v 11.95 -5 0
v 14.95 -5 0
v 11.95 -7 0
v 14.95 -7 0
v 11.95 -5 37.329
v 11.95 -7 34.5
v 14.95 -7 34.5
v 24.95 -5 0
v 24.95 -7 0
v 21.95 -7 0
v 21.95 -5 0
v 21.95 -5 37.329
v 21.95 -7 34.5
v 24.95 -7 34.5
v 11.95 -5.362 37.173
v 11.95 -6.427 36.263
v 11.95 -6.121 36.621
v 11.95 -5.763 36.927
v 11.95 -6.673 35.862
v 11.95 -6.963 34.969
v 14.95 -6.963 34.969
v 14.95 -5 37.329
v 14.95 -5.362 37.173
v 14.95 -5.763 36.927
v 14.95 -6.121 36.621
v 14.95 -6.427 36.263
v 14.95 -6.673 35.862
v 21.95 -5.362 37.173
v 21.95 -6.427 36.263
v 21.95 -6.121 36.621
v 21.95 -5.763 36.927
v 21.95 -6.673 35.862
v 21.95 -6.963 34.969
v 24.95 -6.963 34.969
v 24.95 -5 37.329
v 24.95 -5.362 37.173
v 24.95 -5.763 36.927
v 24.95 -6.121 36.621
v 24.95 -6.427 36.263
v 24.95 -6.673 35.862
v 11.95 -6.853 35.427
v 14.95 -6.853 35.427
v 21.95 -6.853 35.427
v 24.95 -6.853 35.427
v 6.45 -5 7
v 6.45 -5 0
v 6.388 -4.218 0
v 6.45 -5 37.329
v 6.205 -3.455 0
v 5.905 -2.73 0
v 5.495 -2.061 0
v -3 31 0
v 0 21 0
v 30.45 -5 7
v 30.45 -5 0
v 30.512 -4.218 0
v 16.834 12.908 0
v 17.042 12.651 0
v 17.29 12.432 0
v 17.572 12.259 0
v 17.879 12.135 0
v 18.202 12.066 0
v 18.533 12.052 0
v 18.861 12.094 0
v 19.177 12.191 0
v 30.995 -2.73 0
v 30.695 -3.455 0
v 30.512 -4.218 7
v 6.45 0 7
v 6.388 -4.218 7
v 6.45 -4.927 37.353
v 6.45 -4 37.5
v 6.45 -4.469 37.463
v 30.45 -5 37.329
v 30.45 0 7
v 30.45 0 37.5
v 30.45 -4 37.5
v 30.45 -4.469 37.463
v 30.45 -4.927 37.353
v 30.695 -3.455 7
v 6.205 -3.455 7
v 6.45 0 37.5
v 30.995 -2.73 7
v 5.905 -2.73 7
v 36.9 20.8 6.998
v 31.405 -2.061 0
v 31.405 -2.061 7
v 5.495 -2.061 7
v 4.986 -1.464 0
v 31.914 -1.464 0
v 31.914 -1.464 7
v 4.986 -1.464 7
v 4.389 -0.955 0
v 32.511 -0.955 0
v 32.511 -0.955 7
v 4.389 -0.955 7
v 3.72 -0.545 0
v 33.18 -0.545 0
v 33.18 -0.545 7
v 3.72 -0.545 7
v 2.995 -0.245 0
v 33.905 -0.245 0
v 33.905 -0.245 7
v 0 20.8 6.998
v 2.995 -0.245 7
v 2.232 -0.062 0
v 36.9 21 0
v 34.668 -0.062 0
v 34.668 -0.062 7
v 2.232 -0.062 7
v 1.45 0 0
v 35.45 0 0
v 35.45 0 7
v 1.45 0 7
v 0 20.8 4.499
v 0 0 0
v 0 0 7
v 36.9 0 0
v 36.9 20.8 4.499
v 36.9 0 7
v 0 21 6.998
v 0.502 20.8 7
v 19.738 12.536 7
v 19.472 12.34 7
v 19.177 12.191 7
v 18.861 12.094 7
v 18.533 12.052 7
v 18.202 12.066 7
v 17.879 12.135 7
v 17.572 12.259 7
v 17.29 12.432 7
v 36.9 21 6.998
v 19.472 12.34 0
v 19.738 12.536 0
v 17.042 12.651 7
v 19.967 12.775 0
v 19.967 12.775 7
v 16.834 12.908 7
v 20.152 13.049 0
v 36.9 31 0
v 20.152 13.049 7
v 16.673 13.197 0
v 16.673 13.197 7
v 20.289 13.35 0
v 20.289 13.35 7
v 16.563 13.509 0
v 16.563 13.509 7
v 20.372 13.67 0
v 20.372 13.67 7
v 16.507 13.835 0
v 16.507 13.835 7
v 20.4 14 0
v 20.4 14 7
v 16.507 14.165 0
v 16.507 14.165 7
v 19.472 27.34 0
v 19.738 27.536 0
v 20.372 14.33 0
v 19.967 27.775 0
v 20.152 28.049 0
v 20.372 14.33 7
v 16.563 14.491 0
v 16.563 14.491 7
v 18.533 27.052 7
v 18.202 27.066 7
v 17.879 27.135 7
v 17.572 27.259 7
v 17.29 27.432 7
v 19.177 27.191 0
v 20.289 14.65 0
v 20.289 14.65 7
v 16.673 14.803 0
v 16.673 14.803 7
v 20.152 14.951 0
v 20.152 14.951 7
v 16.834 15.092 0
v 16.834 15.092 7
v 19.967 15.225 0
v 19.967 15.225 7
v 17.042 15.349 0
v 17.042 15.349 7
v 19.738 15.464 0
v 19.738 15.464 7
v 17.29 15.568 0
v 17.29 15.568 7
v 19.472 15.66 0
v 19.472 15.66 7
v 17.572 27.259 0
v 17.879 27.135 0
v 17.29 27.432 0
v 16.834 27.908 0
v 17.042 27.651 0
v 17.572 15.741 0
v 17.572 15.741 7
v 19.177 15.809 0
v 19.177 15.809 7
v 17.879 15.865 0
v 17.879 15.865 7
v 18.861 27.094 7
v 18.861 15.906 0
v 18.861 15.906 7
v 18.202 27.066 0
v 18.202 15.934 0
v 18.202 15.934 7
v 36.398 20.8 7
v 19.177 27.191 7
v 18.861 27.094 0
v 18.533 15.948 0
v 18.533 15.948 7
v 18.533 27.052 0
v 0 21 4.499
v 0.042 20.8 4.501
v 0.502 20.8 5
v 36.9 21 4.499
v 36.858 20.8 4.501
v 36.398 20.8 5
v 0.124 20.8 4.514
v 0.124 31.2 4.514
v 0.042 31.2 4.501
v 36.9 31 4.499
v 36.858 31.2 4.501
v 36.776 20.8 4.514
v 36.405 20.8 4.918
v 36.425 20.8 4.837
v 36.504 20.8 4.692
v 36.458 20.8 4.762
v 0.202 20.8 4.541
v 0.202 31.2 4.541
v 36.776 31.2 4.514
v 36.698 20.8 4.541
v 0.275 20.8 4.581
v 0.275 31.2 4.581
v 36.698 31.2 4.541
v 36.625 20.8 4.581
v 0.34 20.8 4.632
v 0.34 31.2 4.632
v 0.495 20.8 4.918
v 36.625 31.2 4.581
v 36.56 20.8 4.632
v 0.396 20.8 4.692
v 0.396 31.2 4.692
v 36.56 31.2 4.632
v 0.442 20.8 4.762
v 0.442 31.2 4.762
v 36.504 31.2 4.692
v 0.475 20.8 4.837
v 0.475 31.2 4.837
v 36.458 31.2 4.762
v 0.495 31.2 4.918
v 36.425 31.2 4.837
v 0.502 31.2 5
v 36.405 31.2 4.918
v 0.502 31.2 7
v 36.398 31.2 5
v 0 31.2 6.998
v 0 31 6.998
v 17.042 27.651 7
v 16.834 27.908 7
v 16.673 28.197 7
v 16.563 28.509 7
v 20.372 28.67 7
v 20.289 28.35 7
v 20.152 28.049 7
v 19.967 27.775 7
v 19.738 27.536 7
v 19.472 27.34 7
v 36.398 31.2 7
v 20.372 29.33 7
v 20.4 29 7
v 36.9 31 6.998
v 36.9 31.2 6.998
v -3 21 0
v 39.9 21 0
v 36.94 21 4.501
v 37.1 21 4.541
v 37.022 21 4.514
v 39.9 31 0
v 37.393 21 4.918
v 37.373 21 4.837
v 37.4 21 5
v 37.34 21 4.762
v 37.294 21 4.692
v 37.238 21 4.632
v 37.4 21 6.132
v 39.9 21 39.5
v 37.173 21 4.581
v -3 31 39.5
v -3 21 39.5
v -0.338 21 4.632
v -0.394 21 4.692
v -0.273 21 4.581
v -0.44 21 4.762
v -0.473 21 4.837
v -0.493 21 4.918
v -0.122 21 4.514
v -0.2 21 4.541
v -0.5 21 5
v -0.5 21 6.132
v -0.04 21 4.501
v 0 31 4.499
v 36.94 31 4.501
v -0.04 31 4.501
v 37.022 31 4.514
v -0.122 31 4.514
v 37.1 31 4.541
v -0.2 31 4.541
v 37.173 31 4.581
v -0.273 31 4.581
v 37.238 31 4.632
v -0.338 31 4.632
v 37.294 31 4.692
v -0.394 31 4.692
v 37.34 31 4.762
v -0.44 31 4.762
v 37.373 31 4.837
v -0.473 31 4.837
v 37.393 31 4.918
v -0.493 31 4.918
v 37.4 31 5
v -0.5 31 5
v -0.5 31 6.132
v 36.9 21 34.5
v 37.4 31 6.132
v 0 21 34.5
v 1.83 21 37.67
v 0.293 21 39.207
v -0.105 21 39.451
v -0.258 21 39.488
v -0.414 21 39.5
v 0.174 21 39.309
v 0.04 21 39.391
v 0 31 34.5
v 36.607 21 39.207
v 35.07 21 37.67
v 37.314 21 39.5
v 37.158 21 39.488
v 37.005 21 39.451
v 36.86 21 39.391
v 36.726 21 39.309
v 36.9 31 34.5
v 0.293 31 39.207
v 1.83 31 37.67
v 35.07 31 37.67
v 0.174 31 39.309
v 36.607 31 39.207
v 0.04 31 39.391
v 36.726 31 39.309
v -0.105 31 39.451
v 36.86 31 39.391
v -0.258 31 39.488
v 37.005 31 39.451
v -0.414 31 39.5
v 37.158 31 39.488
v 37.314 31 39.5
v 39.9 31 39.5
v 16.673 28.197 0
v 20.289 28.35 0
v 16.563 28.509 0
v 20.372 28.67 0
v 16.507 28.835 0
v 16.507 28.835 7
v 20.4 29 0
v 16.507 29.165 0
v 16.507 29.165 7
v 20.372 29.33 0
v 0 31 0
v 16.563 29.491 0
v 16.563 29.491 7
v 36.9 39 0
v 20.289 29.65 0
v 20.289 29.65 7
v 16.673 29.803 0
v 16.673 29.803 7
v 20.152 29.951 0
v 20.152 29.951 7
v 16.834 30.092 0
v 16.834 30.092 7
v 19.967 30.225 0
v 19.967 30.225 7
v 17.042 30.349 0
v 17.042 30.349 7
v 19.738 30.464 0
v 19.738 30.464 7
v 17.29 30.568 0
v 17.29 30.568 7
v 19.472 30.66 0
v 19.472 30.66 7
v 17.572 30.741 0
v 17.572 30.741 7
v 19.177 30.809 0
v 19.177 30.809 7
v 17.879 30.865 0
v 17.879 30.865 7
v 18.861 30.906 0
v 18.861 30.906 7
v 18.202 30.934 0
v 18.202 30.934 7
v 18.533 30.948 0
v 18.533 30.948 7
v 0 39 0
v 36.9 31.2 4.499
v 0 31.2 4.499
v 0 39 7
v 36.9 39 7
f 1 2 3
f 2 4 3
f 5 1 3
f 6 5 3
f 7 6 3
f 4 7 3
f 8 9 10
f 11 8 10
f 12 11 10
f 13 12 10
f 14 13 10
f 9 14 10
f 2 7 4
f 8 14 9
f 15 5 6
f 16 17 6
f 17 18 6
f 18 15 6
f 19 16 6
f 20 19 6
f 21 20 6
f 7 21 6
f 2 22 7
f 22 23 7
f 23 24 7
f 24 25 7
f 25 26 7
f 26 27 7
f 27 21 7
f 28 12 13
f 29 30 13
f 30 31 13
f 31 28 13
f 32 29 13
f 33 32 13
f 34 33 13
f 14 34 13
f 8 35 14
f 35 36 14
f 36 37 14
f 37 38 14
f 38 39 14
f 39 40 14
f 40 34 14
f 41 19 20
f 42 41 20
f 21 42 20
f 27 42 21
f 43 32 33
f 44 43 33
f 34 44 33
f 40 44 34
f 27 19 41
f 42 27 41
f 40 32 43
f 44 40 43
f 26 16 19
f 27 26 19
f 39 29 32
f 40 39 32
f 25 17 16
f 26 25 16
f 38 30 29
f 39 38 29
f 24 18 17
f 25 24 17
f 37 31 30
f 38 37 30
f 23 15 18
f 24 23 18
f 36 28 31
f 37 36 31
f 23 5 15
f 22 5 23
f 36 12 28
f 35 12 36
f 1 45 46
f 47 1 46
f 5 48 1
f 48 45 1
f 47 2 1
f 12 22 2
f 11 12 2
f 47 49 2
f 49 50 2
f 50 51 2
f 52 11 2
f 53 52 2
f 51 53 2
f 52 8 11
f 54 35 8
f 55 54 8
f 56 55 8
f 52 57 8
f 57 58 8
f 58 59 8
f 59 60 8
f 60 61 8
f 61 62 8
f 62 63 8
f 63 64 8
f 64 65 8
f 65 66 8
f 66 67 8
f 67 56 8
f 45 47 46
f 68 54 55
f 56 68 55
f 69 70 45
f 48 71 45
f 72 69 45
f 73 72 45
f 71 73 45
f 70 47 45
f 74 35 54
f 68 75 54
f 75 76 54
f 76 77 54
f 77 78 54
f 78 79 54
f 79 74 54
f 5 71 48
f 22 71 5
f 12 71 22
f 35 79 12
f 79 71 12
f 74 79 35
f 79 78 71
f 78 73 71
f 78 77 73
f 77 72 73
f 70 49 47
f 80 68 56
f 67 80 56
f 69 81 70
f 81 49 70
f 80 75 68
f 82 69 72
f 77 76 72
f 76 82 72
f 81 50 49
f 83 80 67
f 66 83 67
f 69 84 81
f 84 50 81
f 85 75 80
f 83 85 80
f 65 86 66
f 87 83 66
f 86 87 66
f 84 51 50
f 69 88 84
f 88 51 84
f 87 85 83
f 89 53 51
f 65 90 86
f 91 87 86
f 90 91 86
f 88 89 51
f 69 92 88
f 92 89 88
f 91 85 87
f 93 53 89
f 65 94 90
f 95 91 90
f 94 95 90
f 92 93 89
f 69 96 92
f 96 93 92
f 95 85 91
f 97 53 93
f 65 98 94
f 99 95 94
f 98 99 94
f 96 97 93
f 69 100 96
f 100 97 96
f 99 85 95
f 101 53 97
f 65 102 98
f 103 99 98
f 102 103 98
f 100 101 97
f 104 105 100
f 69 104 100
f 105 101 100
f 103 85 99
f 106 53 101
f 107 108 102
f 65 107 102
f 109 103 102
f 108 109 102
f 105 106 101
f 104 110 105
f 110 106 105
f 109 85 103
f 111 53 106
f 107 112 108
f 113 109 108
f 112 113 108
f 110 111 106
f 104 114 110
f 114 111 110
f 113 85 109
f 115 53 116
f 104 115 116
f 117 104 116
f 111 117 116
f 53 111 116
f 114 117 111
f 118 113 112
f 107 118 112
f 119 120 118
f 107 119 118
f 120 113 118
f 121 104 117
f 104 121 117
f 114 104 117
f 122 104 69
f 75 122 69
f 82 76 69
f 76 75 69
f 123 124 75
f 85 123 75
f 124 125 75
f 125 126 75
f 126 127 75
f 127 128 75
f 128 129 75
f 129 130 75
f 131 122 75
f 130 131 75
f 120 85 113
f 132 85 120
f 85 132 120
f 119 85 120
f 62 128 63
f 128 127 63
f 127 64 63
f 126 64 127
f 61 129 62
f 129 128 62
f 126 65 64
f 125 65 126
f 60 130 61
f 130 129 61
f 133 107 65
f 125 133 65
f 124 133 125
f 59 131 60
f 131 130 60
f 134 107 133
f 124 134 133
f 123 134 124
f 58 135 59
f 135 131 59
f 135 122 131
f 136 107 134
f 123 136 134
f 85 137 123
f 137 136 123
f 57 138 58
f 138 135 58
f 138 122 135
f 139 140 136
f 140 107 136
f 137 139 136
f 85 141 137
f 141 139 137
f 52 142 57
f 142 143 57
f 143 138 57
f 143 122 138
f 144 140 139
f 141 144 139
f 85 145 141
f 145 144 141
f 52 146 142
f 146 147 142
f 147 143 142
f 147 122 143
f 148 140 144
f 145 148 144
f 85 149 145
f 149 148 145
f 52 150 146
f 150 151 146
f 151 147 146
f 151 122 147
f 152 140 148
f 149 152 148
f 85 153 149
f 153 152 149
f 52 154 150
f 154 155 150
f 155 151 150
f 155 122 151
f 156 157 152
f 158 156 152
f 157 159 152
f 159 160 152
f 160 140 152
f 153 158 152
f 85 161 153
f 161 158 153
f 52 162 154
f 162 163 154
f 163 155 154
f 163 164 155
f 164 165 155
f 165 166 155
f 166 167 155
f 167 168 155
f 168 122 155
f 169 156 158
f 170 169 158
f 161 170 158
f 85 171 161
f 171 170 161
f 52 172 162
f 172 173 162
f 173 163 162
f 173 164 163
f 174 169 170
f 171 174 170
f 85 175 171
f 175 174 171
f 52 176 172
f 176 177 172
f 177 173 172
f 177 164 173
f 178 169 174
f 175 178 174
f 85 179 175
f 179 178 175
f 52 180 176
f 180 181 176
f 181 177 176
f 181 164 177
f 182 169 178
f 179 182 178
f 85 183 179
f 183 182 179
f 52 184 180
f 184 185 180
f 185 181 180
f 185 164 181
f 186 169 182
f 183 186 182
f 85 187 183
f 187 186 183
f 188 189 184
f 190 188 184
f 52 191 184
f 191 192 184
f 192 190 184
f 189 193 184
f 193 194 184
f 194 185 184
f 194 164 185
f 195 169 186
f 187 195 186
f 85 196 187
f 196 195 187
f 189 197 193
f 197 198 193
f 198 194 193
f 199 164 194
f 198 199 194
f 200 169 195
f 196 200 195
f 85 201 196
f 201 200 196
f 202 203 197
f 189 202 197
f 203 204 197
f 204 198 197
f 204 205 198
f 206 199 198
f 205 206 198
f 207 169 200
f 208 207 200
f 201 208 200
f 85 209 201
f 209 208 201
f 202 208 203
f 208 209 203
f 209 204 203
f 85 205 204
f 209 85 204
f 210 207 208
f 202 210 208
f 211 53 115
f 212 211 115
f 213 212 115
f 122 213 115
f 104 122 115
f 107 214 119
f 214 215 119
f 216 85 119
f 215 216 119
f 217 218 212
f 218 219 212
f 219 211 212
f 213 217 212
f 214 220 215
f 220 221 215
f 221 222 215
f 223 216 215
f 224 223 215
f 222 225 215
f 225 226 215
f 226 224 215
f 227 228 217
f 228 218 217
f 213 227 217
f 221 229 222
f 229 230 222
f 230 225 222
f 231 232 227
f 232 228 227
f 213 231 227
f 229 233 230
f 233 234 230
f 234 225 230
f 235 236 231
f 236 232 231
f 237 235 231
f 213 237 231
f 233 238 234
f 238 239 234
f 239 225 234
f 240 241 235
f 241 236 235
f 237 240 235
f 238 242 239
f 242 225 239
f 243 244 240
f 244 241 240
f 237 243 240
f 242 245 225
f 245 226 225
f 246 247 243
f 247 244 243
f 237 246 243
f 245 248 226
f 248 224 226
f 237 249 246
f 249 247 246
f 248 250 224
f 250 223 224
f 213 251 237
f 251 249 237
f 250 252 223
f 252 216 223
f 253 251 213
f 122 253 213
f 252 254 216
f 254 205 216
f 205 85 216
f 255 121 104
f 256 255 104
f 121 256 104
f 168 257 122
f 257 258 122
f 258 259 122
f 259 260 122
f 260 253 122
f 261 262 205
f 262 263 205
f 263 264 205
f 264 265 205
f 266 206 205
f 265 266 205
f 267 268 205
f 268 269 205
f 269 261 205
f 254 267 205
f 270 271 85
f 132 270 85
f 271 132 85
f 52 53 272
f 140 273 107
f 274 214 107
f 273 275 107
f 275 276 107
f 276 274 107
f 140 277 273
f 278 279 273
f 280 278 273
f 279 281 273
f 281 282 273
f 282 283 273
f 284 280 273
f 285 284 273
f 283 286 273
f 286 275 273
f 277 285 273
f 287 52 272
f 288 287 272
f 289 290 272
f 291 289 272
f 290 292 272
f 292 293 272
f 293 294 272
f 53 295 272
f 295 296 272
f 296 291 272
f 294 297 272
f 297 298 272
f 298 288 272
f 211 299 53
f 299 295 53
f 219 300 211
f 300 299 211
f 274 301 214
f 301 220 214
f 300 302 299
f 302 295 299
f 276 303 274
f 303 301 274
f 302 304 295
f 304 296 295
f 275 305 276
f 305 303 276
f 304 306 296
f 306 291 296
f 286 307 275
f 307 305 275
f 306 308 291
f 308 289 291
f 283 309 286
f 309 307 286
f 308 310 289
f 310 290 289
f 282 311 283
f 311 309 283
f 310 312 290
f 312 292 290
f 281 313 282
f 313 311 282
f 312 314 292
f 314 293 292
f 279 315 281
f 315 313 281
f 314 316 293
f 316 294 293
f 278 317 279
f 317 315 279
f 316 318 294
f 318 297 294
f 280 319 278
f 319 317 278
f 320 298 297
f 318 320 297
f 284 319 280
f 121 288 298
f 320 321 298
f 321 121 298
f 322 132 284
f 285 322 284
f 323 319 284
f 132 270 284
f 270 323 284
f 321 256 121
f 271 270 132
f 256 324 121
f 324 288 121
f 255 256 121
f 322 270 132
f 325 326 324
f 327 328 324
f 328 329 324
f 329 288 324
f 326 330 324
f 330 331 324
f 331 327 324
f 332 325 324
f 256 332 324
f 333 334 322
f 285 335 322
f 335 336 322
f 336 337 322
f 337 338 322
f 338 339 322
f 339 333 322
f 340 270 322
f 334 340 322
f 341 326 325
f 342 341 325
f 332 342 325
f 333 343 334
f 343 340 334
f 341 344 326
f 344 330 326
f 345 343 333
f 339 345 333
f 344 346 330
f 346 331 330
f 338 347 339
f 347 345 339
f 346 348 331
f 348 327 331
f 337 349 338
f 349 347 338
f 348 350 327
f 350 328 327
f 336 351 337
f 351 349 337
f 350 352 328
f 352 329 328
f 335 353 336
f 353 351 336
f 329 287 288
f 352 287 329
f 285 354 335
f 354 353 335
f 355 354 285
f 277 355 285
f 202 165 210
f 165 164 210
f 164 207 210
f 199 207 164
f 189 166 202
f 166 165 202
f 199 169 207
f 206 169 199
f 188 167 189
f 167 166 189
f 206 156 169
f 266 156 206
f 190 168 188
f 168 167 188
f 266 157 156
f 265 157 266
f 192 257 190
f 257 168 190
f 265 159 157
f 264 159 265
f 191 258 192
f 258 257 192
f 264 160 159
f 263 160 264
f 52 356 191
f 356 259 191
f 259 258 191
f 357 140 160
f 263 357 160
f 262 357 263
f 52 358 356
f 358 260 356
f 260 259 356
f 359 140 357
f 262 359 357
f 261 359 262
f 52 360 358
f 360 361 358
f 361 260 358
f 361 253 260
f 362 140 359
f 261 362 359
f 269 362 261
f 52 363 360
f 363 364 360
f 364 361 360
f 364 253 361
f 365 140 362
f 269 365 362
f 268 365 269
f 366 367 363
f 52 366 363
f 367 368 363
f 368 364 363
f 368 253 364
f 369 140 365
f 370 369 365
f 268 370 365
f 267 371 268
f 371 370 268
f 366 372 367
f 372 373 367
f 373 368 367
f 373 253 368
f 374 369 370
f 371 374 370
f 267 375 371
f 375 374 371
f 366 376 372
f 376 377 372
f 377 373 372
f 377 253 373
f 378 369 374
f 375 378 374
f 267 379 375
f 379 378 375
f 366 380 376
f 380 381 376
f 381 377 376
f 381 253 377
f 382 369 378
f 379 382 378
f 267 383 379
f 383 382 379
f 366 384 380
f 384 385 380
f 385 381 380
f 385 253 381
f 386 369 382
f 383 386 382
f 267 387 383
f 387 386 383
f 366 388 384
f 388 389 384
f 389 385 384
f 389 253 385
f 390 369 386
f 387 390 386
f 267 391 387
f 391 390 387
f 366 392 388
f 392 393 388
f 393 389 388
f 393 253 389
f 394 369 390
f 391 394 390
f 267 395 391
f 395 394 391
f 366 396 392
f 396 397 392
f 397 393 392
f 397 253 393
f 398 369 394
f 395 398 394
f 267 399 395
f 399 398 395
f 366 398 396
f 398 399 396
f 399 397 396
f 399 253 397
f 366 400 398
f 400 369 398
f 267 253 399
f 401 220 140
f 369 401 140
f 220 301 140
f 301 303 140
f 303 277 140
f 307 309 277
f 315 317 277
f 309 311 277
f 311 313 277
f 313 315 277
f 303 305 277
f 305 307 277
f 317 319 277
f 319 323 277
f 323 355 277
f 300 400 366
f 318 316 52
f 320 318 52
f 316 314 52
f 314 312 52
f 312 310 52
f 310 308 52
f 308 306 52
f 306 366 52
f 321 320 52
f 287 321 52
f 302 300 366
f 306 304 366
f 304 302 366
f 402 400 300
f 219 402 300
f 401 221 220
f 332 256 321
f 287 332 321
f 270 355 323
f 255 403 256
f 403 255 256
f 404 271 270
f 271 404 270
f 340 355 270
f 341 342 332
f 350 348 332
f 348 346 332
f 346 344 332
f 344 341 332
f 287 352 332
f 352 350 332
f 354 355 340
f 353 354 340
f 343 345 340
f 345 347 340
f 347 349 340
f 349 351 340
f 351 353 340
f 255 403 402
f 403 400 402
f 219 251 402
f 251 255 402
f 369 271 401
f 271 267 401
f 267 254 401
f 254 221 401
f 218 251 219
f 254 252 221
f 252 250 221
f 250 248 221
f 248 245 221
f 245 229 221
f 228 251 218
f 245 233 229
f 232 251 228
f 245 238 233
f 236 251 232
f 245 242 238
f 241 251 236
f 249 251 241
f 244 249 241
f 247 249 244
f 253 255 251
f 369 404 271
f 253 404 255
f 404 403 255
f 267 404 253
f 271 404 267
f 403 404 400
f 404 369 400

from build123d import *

# Parameters (mm, degrees)
SKETCH_1_W          = 36.9
SKETCH_1_H          = 39
EXTRUDE_1_DEPTH     = 7
SKETCH_2_W          = 24
SKETCH_2_H          = 37.5
EXTRUDE_2_DEPTH     = 5
SKETCH_4_W          = 39.5
SKETCH_4_H          = 10
EXTRUDE_3_DEPTH     = 3
EXTRUDE_4_DEPTH     = 10
CUT_EXTRUDE_3_DEPTH = 10
CUT_EXTRUDE_START   = 0.2
CUT_EXTRUDE_4_DEPTH = 0.2
CUT_EXTRUDE_START_2 = -10
CUT_EXTRUDE_5_DEPTH = 0.2
FILLET_1_R          = 5
FILLET_2_R          = 1
MIRROR_START        = 20.8
MIRROR_4_DEPTH      = 10.4
MIRROR_START_2      = 21
MIRROR_4_2_DEPTH    = 10
FILLET_3_R          = 1
SKETCH_7_W          = 3
SKETCH_7_H          = 37.5
EXTRUDE_5_DEPTH     = 2
FILLET_4_R          = 3
SKETCH_8_R          = 1.95
CUT_EXTRUDE_6_DEPTH = 65.569807186


# Read off the part's stored shape, not the designer's step: 鏡射4
with BuildPart() as part:
    # 草圖1 → 填料-伸長1 (new body)
    with BuildSketch(Plane.XY):
        with Locations((18.45, 19.5)):
            Rectangle(SKETCH_1_W, SKETCH_1_H)
    extrude(amount=EXTRUDE_1_DEPTH)

    # 草圖2 → 填料-伸長2 (add)
    with BuildSketch(Plane.XZ):
        with Locations((18.45, 18.75)):
            Rectangle(SKETCH_2_W, SKETCH_2_H)
    extrude(amount=EXTRUDE_2_DEPTH)

    # 草圖4 → 填料-伸長3 (add)
    with BuildSketch(Plane(origin=(36.9, 0, 0), x_dir=(0, 0, -1), z_dir=(1, 0, 0))):
        with Locations((-19.75, 26)):
            Rectangle(SKETCH_4_W, SKETCH_4_H)
    extrude(amount=EXTRUDE_3_DEPTH)

    # 草圖5 → 填料-伸長4 (add)
    with BuildSketch(Plane(origin=(0, 31, 0), x_dir=(1, 0, 0), z_dir=(0, 1, 0))):
        Polygon((36.9, -39.5), (35.069872981, -37.669872981), (36.9, -34.5), align=None)
    extrude(amount=-EXTRUDE_4_DEPTH)

    # 草圖6 → 除料-伸長3 (cut)
    with BuildSketch(Plane(origin=(0, 31, 0), x_dir=(1, 0, 0), z_dir=(0, 1, 0))):
        with BuildLine():
            Line((36.398110453, -7), (36.899055226, -7))
            Line((36.899055226, -7), (37.4, -6.1323382))
            Line((37.4, -6.1323382), (37.4, -5))
            ThreePointArc((37.4, -5), (36.899055226, -4.499055226), (36.398110453, -5))
            Line((36.398110453, -5), (36.398110453, -7))
        make_face()
    extrude(amount=-CUT_EXTRUDE_3_DEPTH, mode=Mode.SUBTRACT)

    # 草圖6<2> → 除料-伸長4 (cut)
    with BuildSketch(Plane(origin=(0, 31, 0), x_dir=(1, 0, 0), z_dir=(0, 1, 0)).offset(CUT_EXTRUDE_START)):
        with BuildLine():
            Line((36.398110453, -7), (36.899055226, -7))
            Line((36.899055226, -7), (37.4, -6.1323382))
            Line((37.4, -6.1323382), (37.4, -5))
            ThreePointArc((37.4, -5), (36.899055226, -4.499055226), (36.398110453, -5))
            Line((36.398110453, -5), (36.398110453, -7))
        make_face()
    extrude(amount=-CUT_EXTRUDE_4_DEPTH, mode=Mode.SUBTRACT)

    # 草圖6<3> → 除料-伸長5 (cut)
    with BuildSketch(Plane(origin=(0, 31, 0), x_dir=(1, 0, 0), z_dir=(0, 1, 0)).offset(CUT_EXTRUDE_START_2)):
        with BuildLine():
            Line((36.398110453, -7), (36.899055226, -7))
            Line((36.899055226, -7), (37.4, -6.1323382))
            Line((37.4, -6.1323382), (37.4, -5))
            ThreePointArc((37.4, -5), (36.899055226, -4.499055226), (36.398110453, -5))
            Line((36.398110453, -5), (36.398110453, -7))
        make_face()
    extrude(amount=-CUT_EXTRUDE_5_DEPTH, mode=Mode.SUBTRACT)

    # 圓角1
    fillet_1_edges = [part.edges().sort_by_distance(p)[0] for p in [
        (6.45, 0, 3.5),
        (30.45, 0, 3.5),
    ]]
    fillet(fillet_1_edges, radius=FILLET_1_R - 0.0001)  # a hair under: the kernel refuses the full size

    # 圓角2
    fillet_2_edges = [part.edges().sort_by_distance(p)[0] for p in [
        (36.9, 26, 39.5),
    ]]
    fillet(fillet_2_edges, radius=FILLET_2_R)

    # 鏡射4 outline → 鏡射4 (cut)
    with BuildSketch(Plane(origin=(0, 0, 0), x_dir=(1, 0, 0), z_dir=(0, 1, 0)).offset(MIRROR_START)):
        with BuildLine():
            Line((0, -4.499056117), (0, -6.998363603))
            Line((0, -6.998363603), (0.000944774, -7))
            Line((0.000944774, -7), (0.501889547, -7))
            Line((0.501889547, -7), (0.501889547, -5))
            ThreePointArc((0.501889547, -5), (0.354832035, -4.645444683), (0, -4.499056117))
        make_face()
    extrude(amount=MIRROR_4_DEPTH, mode=Mode.SUBTRACT)

    # Mirror 4 2 outline → Mirror 4 2 (add)
    with BuildSketch(Plane(origin=(0, 0, 0), x_dir=(1, 0, 0), z_dir=(0, 1, 0)).offset(MIRROR_START_2)):
        with BuildLine():
            Line((0, -34.5), (0, -6.998363603))
            Line((0, -6.998363603), (-0.5, -6.1323382))
            Line((-0.5, -6.1323382), (-0.5, -5))
            ThreePointArc((-0.5, -5), (-0.353610544, -4.646112739), (0, -4.499056117))
            Line((0, -4.499056117), (0, 0))
            Line((0, 0), (-3, 0))
            Line((-3, 0), (-3, -39.5))
            Line((-3, -39.5), (0, -39.5))
            Line((0, -39.5), (1.830127019, -37.669872981))
            Line((1.830127019, -37.669872981), (0, -34.5))
        make_face()
    extrude(amount=MIRROR_4_2_DEPTH)

    # 圓角3
    fillet_3_edges = [part.edges().sort_by_distance(p)[0] for p in [
        (0, 26, 39.5),
    ]]
    fillet(fillet_3_edges, radius=FILLET_3_R)

    # 草圖7 → 填料-伸長5 (add)
    with BuildSketch(Plane.XZ.offset(5)):
        with Locations((13.45, 18.75)):
            Rectangle(SKETCH_7_W, SKETCH_7_H)
        with Locations((23.45, 18.75)):
            Rectangle(SKETCH_7_W, SKETCH_7_H)
    extrude(amount=EXTRUDE_5_DEPTH)

    # 圓角4
    fillet_4_edges = [part.edges().sort_by_distance(p)[0] for p in [
        (13.45, -7, 37.5),
    ]]
    fillet(fillet_4_edges, radius=FILLET_4_R)

    # 草圖8 → 除料-伸長6 (cut, through all)
    with BuildSketch(Plane.XY.offset(7)):
        with Locations((18.45, 29)):
            Circle(SKETCH_8_R)
        with Locations((18.45, 14)):
            Circle(SKETCH_8_R)
    extrude(amount=-CUT_EXTRUDE_6_DEPTH, mode=Mode.SUBTRACT)


solid = part.part
